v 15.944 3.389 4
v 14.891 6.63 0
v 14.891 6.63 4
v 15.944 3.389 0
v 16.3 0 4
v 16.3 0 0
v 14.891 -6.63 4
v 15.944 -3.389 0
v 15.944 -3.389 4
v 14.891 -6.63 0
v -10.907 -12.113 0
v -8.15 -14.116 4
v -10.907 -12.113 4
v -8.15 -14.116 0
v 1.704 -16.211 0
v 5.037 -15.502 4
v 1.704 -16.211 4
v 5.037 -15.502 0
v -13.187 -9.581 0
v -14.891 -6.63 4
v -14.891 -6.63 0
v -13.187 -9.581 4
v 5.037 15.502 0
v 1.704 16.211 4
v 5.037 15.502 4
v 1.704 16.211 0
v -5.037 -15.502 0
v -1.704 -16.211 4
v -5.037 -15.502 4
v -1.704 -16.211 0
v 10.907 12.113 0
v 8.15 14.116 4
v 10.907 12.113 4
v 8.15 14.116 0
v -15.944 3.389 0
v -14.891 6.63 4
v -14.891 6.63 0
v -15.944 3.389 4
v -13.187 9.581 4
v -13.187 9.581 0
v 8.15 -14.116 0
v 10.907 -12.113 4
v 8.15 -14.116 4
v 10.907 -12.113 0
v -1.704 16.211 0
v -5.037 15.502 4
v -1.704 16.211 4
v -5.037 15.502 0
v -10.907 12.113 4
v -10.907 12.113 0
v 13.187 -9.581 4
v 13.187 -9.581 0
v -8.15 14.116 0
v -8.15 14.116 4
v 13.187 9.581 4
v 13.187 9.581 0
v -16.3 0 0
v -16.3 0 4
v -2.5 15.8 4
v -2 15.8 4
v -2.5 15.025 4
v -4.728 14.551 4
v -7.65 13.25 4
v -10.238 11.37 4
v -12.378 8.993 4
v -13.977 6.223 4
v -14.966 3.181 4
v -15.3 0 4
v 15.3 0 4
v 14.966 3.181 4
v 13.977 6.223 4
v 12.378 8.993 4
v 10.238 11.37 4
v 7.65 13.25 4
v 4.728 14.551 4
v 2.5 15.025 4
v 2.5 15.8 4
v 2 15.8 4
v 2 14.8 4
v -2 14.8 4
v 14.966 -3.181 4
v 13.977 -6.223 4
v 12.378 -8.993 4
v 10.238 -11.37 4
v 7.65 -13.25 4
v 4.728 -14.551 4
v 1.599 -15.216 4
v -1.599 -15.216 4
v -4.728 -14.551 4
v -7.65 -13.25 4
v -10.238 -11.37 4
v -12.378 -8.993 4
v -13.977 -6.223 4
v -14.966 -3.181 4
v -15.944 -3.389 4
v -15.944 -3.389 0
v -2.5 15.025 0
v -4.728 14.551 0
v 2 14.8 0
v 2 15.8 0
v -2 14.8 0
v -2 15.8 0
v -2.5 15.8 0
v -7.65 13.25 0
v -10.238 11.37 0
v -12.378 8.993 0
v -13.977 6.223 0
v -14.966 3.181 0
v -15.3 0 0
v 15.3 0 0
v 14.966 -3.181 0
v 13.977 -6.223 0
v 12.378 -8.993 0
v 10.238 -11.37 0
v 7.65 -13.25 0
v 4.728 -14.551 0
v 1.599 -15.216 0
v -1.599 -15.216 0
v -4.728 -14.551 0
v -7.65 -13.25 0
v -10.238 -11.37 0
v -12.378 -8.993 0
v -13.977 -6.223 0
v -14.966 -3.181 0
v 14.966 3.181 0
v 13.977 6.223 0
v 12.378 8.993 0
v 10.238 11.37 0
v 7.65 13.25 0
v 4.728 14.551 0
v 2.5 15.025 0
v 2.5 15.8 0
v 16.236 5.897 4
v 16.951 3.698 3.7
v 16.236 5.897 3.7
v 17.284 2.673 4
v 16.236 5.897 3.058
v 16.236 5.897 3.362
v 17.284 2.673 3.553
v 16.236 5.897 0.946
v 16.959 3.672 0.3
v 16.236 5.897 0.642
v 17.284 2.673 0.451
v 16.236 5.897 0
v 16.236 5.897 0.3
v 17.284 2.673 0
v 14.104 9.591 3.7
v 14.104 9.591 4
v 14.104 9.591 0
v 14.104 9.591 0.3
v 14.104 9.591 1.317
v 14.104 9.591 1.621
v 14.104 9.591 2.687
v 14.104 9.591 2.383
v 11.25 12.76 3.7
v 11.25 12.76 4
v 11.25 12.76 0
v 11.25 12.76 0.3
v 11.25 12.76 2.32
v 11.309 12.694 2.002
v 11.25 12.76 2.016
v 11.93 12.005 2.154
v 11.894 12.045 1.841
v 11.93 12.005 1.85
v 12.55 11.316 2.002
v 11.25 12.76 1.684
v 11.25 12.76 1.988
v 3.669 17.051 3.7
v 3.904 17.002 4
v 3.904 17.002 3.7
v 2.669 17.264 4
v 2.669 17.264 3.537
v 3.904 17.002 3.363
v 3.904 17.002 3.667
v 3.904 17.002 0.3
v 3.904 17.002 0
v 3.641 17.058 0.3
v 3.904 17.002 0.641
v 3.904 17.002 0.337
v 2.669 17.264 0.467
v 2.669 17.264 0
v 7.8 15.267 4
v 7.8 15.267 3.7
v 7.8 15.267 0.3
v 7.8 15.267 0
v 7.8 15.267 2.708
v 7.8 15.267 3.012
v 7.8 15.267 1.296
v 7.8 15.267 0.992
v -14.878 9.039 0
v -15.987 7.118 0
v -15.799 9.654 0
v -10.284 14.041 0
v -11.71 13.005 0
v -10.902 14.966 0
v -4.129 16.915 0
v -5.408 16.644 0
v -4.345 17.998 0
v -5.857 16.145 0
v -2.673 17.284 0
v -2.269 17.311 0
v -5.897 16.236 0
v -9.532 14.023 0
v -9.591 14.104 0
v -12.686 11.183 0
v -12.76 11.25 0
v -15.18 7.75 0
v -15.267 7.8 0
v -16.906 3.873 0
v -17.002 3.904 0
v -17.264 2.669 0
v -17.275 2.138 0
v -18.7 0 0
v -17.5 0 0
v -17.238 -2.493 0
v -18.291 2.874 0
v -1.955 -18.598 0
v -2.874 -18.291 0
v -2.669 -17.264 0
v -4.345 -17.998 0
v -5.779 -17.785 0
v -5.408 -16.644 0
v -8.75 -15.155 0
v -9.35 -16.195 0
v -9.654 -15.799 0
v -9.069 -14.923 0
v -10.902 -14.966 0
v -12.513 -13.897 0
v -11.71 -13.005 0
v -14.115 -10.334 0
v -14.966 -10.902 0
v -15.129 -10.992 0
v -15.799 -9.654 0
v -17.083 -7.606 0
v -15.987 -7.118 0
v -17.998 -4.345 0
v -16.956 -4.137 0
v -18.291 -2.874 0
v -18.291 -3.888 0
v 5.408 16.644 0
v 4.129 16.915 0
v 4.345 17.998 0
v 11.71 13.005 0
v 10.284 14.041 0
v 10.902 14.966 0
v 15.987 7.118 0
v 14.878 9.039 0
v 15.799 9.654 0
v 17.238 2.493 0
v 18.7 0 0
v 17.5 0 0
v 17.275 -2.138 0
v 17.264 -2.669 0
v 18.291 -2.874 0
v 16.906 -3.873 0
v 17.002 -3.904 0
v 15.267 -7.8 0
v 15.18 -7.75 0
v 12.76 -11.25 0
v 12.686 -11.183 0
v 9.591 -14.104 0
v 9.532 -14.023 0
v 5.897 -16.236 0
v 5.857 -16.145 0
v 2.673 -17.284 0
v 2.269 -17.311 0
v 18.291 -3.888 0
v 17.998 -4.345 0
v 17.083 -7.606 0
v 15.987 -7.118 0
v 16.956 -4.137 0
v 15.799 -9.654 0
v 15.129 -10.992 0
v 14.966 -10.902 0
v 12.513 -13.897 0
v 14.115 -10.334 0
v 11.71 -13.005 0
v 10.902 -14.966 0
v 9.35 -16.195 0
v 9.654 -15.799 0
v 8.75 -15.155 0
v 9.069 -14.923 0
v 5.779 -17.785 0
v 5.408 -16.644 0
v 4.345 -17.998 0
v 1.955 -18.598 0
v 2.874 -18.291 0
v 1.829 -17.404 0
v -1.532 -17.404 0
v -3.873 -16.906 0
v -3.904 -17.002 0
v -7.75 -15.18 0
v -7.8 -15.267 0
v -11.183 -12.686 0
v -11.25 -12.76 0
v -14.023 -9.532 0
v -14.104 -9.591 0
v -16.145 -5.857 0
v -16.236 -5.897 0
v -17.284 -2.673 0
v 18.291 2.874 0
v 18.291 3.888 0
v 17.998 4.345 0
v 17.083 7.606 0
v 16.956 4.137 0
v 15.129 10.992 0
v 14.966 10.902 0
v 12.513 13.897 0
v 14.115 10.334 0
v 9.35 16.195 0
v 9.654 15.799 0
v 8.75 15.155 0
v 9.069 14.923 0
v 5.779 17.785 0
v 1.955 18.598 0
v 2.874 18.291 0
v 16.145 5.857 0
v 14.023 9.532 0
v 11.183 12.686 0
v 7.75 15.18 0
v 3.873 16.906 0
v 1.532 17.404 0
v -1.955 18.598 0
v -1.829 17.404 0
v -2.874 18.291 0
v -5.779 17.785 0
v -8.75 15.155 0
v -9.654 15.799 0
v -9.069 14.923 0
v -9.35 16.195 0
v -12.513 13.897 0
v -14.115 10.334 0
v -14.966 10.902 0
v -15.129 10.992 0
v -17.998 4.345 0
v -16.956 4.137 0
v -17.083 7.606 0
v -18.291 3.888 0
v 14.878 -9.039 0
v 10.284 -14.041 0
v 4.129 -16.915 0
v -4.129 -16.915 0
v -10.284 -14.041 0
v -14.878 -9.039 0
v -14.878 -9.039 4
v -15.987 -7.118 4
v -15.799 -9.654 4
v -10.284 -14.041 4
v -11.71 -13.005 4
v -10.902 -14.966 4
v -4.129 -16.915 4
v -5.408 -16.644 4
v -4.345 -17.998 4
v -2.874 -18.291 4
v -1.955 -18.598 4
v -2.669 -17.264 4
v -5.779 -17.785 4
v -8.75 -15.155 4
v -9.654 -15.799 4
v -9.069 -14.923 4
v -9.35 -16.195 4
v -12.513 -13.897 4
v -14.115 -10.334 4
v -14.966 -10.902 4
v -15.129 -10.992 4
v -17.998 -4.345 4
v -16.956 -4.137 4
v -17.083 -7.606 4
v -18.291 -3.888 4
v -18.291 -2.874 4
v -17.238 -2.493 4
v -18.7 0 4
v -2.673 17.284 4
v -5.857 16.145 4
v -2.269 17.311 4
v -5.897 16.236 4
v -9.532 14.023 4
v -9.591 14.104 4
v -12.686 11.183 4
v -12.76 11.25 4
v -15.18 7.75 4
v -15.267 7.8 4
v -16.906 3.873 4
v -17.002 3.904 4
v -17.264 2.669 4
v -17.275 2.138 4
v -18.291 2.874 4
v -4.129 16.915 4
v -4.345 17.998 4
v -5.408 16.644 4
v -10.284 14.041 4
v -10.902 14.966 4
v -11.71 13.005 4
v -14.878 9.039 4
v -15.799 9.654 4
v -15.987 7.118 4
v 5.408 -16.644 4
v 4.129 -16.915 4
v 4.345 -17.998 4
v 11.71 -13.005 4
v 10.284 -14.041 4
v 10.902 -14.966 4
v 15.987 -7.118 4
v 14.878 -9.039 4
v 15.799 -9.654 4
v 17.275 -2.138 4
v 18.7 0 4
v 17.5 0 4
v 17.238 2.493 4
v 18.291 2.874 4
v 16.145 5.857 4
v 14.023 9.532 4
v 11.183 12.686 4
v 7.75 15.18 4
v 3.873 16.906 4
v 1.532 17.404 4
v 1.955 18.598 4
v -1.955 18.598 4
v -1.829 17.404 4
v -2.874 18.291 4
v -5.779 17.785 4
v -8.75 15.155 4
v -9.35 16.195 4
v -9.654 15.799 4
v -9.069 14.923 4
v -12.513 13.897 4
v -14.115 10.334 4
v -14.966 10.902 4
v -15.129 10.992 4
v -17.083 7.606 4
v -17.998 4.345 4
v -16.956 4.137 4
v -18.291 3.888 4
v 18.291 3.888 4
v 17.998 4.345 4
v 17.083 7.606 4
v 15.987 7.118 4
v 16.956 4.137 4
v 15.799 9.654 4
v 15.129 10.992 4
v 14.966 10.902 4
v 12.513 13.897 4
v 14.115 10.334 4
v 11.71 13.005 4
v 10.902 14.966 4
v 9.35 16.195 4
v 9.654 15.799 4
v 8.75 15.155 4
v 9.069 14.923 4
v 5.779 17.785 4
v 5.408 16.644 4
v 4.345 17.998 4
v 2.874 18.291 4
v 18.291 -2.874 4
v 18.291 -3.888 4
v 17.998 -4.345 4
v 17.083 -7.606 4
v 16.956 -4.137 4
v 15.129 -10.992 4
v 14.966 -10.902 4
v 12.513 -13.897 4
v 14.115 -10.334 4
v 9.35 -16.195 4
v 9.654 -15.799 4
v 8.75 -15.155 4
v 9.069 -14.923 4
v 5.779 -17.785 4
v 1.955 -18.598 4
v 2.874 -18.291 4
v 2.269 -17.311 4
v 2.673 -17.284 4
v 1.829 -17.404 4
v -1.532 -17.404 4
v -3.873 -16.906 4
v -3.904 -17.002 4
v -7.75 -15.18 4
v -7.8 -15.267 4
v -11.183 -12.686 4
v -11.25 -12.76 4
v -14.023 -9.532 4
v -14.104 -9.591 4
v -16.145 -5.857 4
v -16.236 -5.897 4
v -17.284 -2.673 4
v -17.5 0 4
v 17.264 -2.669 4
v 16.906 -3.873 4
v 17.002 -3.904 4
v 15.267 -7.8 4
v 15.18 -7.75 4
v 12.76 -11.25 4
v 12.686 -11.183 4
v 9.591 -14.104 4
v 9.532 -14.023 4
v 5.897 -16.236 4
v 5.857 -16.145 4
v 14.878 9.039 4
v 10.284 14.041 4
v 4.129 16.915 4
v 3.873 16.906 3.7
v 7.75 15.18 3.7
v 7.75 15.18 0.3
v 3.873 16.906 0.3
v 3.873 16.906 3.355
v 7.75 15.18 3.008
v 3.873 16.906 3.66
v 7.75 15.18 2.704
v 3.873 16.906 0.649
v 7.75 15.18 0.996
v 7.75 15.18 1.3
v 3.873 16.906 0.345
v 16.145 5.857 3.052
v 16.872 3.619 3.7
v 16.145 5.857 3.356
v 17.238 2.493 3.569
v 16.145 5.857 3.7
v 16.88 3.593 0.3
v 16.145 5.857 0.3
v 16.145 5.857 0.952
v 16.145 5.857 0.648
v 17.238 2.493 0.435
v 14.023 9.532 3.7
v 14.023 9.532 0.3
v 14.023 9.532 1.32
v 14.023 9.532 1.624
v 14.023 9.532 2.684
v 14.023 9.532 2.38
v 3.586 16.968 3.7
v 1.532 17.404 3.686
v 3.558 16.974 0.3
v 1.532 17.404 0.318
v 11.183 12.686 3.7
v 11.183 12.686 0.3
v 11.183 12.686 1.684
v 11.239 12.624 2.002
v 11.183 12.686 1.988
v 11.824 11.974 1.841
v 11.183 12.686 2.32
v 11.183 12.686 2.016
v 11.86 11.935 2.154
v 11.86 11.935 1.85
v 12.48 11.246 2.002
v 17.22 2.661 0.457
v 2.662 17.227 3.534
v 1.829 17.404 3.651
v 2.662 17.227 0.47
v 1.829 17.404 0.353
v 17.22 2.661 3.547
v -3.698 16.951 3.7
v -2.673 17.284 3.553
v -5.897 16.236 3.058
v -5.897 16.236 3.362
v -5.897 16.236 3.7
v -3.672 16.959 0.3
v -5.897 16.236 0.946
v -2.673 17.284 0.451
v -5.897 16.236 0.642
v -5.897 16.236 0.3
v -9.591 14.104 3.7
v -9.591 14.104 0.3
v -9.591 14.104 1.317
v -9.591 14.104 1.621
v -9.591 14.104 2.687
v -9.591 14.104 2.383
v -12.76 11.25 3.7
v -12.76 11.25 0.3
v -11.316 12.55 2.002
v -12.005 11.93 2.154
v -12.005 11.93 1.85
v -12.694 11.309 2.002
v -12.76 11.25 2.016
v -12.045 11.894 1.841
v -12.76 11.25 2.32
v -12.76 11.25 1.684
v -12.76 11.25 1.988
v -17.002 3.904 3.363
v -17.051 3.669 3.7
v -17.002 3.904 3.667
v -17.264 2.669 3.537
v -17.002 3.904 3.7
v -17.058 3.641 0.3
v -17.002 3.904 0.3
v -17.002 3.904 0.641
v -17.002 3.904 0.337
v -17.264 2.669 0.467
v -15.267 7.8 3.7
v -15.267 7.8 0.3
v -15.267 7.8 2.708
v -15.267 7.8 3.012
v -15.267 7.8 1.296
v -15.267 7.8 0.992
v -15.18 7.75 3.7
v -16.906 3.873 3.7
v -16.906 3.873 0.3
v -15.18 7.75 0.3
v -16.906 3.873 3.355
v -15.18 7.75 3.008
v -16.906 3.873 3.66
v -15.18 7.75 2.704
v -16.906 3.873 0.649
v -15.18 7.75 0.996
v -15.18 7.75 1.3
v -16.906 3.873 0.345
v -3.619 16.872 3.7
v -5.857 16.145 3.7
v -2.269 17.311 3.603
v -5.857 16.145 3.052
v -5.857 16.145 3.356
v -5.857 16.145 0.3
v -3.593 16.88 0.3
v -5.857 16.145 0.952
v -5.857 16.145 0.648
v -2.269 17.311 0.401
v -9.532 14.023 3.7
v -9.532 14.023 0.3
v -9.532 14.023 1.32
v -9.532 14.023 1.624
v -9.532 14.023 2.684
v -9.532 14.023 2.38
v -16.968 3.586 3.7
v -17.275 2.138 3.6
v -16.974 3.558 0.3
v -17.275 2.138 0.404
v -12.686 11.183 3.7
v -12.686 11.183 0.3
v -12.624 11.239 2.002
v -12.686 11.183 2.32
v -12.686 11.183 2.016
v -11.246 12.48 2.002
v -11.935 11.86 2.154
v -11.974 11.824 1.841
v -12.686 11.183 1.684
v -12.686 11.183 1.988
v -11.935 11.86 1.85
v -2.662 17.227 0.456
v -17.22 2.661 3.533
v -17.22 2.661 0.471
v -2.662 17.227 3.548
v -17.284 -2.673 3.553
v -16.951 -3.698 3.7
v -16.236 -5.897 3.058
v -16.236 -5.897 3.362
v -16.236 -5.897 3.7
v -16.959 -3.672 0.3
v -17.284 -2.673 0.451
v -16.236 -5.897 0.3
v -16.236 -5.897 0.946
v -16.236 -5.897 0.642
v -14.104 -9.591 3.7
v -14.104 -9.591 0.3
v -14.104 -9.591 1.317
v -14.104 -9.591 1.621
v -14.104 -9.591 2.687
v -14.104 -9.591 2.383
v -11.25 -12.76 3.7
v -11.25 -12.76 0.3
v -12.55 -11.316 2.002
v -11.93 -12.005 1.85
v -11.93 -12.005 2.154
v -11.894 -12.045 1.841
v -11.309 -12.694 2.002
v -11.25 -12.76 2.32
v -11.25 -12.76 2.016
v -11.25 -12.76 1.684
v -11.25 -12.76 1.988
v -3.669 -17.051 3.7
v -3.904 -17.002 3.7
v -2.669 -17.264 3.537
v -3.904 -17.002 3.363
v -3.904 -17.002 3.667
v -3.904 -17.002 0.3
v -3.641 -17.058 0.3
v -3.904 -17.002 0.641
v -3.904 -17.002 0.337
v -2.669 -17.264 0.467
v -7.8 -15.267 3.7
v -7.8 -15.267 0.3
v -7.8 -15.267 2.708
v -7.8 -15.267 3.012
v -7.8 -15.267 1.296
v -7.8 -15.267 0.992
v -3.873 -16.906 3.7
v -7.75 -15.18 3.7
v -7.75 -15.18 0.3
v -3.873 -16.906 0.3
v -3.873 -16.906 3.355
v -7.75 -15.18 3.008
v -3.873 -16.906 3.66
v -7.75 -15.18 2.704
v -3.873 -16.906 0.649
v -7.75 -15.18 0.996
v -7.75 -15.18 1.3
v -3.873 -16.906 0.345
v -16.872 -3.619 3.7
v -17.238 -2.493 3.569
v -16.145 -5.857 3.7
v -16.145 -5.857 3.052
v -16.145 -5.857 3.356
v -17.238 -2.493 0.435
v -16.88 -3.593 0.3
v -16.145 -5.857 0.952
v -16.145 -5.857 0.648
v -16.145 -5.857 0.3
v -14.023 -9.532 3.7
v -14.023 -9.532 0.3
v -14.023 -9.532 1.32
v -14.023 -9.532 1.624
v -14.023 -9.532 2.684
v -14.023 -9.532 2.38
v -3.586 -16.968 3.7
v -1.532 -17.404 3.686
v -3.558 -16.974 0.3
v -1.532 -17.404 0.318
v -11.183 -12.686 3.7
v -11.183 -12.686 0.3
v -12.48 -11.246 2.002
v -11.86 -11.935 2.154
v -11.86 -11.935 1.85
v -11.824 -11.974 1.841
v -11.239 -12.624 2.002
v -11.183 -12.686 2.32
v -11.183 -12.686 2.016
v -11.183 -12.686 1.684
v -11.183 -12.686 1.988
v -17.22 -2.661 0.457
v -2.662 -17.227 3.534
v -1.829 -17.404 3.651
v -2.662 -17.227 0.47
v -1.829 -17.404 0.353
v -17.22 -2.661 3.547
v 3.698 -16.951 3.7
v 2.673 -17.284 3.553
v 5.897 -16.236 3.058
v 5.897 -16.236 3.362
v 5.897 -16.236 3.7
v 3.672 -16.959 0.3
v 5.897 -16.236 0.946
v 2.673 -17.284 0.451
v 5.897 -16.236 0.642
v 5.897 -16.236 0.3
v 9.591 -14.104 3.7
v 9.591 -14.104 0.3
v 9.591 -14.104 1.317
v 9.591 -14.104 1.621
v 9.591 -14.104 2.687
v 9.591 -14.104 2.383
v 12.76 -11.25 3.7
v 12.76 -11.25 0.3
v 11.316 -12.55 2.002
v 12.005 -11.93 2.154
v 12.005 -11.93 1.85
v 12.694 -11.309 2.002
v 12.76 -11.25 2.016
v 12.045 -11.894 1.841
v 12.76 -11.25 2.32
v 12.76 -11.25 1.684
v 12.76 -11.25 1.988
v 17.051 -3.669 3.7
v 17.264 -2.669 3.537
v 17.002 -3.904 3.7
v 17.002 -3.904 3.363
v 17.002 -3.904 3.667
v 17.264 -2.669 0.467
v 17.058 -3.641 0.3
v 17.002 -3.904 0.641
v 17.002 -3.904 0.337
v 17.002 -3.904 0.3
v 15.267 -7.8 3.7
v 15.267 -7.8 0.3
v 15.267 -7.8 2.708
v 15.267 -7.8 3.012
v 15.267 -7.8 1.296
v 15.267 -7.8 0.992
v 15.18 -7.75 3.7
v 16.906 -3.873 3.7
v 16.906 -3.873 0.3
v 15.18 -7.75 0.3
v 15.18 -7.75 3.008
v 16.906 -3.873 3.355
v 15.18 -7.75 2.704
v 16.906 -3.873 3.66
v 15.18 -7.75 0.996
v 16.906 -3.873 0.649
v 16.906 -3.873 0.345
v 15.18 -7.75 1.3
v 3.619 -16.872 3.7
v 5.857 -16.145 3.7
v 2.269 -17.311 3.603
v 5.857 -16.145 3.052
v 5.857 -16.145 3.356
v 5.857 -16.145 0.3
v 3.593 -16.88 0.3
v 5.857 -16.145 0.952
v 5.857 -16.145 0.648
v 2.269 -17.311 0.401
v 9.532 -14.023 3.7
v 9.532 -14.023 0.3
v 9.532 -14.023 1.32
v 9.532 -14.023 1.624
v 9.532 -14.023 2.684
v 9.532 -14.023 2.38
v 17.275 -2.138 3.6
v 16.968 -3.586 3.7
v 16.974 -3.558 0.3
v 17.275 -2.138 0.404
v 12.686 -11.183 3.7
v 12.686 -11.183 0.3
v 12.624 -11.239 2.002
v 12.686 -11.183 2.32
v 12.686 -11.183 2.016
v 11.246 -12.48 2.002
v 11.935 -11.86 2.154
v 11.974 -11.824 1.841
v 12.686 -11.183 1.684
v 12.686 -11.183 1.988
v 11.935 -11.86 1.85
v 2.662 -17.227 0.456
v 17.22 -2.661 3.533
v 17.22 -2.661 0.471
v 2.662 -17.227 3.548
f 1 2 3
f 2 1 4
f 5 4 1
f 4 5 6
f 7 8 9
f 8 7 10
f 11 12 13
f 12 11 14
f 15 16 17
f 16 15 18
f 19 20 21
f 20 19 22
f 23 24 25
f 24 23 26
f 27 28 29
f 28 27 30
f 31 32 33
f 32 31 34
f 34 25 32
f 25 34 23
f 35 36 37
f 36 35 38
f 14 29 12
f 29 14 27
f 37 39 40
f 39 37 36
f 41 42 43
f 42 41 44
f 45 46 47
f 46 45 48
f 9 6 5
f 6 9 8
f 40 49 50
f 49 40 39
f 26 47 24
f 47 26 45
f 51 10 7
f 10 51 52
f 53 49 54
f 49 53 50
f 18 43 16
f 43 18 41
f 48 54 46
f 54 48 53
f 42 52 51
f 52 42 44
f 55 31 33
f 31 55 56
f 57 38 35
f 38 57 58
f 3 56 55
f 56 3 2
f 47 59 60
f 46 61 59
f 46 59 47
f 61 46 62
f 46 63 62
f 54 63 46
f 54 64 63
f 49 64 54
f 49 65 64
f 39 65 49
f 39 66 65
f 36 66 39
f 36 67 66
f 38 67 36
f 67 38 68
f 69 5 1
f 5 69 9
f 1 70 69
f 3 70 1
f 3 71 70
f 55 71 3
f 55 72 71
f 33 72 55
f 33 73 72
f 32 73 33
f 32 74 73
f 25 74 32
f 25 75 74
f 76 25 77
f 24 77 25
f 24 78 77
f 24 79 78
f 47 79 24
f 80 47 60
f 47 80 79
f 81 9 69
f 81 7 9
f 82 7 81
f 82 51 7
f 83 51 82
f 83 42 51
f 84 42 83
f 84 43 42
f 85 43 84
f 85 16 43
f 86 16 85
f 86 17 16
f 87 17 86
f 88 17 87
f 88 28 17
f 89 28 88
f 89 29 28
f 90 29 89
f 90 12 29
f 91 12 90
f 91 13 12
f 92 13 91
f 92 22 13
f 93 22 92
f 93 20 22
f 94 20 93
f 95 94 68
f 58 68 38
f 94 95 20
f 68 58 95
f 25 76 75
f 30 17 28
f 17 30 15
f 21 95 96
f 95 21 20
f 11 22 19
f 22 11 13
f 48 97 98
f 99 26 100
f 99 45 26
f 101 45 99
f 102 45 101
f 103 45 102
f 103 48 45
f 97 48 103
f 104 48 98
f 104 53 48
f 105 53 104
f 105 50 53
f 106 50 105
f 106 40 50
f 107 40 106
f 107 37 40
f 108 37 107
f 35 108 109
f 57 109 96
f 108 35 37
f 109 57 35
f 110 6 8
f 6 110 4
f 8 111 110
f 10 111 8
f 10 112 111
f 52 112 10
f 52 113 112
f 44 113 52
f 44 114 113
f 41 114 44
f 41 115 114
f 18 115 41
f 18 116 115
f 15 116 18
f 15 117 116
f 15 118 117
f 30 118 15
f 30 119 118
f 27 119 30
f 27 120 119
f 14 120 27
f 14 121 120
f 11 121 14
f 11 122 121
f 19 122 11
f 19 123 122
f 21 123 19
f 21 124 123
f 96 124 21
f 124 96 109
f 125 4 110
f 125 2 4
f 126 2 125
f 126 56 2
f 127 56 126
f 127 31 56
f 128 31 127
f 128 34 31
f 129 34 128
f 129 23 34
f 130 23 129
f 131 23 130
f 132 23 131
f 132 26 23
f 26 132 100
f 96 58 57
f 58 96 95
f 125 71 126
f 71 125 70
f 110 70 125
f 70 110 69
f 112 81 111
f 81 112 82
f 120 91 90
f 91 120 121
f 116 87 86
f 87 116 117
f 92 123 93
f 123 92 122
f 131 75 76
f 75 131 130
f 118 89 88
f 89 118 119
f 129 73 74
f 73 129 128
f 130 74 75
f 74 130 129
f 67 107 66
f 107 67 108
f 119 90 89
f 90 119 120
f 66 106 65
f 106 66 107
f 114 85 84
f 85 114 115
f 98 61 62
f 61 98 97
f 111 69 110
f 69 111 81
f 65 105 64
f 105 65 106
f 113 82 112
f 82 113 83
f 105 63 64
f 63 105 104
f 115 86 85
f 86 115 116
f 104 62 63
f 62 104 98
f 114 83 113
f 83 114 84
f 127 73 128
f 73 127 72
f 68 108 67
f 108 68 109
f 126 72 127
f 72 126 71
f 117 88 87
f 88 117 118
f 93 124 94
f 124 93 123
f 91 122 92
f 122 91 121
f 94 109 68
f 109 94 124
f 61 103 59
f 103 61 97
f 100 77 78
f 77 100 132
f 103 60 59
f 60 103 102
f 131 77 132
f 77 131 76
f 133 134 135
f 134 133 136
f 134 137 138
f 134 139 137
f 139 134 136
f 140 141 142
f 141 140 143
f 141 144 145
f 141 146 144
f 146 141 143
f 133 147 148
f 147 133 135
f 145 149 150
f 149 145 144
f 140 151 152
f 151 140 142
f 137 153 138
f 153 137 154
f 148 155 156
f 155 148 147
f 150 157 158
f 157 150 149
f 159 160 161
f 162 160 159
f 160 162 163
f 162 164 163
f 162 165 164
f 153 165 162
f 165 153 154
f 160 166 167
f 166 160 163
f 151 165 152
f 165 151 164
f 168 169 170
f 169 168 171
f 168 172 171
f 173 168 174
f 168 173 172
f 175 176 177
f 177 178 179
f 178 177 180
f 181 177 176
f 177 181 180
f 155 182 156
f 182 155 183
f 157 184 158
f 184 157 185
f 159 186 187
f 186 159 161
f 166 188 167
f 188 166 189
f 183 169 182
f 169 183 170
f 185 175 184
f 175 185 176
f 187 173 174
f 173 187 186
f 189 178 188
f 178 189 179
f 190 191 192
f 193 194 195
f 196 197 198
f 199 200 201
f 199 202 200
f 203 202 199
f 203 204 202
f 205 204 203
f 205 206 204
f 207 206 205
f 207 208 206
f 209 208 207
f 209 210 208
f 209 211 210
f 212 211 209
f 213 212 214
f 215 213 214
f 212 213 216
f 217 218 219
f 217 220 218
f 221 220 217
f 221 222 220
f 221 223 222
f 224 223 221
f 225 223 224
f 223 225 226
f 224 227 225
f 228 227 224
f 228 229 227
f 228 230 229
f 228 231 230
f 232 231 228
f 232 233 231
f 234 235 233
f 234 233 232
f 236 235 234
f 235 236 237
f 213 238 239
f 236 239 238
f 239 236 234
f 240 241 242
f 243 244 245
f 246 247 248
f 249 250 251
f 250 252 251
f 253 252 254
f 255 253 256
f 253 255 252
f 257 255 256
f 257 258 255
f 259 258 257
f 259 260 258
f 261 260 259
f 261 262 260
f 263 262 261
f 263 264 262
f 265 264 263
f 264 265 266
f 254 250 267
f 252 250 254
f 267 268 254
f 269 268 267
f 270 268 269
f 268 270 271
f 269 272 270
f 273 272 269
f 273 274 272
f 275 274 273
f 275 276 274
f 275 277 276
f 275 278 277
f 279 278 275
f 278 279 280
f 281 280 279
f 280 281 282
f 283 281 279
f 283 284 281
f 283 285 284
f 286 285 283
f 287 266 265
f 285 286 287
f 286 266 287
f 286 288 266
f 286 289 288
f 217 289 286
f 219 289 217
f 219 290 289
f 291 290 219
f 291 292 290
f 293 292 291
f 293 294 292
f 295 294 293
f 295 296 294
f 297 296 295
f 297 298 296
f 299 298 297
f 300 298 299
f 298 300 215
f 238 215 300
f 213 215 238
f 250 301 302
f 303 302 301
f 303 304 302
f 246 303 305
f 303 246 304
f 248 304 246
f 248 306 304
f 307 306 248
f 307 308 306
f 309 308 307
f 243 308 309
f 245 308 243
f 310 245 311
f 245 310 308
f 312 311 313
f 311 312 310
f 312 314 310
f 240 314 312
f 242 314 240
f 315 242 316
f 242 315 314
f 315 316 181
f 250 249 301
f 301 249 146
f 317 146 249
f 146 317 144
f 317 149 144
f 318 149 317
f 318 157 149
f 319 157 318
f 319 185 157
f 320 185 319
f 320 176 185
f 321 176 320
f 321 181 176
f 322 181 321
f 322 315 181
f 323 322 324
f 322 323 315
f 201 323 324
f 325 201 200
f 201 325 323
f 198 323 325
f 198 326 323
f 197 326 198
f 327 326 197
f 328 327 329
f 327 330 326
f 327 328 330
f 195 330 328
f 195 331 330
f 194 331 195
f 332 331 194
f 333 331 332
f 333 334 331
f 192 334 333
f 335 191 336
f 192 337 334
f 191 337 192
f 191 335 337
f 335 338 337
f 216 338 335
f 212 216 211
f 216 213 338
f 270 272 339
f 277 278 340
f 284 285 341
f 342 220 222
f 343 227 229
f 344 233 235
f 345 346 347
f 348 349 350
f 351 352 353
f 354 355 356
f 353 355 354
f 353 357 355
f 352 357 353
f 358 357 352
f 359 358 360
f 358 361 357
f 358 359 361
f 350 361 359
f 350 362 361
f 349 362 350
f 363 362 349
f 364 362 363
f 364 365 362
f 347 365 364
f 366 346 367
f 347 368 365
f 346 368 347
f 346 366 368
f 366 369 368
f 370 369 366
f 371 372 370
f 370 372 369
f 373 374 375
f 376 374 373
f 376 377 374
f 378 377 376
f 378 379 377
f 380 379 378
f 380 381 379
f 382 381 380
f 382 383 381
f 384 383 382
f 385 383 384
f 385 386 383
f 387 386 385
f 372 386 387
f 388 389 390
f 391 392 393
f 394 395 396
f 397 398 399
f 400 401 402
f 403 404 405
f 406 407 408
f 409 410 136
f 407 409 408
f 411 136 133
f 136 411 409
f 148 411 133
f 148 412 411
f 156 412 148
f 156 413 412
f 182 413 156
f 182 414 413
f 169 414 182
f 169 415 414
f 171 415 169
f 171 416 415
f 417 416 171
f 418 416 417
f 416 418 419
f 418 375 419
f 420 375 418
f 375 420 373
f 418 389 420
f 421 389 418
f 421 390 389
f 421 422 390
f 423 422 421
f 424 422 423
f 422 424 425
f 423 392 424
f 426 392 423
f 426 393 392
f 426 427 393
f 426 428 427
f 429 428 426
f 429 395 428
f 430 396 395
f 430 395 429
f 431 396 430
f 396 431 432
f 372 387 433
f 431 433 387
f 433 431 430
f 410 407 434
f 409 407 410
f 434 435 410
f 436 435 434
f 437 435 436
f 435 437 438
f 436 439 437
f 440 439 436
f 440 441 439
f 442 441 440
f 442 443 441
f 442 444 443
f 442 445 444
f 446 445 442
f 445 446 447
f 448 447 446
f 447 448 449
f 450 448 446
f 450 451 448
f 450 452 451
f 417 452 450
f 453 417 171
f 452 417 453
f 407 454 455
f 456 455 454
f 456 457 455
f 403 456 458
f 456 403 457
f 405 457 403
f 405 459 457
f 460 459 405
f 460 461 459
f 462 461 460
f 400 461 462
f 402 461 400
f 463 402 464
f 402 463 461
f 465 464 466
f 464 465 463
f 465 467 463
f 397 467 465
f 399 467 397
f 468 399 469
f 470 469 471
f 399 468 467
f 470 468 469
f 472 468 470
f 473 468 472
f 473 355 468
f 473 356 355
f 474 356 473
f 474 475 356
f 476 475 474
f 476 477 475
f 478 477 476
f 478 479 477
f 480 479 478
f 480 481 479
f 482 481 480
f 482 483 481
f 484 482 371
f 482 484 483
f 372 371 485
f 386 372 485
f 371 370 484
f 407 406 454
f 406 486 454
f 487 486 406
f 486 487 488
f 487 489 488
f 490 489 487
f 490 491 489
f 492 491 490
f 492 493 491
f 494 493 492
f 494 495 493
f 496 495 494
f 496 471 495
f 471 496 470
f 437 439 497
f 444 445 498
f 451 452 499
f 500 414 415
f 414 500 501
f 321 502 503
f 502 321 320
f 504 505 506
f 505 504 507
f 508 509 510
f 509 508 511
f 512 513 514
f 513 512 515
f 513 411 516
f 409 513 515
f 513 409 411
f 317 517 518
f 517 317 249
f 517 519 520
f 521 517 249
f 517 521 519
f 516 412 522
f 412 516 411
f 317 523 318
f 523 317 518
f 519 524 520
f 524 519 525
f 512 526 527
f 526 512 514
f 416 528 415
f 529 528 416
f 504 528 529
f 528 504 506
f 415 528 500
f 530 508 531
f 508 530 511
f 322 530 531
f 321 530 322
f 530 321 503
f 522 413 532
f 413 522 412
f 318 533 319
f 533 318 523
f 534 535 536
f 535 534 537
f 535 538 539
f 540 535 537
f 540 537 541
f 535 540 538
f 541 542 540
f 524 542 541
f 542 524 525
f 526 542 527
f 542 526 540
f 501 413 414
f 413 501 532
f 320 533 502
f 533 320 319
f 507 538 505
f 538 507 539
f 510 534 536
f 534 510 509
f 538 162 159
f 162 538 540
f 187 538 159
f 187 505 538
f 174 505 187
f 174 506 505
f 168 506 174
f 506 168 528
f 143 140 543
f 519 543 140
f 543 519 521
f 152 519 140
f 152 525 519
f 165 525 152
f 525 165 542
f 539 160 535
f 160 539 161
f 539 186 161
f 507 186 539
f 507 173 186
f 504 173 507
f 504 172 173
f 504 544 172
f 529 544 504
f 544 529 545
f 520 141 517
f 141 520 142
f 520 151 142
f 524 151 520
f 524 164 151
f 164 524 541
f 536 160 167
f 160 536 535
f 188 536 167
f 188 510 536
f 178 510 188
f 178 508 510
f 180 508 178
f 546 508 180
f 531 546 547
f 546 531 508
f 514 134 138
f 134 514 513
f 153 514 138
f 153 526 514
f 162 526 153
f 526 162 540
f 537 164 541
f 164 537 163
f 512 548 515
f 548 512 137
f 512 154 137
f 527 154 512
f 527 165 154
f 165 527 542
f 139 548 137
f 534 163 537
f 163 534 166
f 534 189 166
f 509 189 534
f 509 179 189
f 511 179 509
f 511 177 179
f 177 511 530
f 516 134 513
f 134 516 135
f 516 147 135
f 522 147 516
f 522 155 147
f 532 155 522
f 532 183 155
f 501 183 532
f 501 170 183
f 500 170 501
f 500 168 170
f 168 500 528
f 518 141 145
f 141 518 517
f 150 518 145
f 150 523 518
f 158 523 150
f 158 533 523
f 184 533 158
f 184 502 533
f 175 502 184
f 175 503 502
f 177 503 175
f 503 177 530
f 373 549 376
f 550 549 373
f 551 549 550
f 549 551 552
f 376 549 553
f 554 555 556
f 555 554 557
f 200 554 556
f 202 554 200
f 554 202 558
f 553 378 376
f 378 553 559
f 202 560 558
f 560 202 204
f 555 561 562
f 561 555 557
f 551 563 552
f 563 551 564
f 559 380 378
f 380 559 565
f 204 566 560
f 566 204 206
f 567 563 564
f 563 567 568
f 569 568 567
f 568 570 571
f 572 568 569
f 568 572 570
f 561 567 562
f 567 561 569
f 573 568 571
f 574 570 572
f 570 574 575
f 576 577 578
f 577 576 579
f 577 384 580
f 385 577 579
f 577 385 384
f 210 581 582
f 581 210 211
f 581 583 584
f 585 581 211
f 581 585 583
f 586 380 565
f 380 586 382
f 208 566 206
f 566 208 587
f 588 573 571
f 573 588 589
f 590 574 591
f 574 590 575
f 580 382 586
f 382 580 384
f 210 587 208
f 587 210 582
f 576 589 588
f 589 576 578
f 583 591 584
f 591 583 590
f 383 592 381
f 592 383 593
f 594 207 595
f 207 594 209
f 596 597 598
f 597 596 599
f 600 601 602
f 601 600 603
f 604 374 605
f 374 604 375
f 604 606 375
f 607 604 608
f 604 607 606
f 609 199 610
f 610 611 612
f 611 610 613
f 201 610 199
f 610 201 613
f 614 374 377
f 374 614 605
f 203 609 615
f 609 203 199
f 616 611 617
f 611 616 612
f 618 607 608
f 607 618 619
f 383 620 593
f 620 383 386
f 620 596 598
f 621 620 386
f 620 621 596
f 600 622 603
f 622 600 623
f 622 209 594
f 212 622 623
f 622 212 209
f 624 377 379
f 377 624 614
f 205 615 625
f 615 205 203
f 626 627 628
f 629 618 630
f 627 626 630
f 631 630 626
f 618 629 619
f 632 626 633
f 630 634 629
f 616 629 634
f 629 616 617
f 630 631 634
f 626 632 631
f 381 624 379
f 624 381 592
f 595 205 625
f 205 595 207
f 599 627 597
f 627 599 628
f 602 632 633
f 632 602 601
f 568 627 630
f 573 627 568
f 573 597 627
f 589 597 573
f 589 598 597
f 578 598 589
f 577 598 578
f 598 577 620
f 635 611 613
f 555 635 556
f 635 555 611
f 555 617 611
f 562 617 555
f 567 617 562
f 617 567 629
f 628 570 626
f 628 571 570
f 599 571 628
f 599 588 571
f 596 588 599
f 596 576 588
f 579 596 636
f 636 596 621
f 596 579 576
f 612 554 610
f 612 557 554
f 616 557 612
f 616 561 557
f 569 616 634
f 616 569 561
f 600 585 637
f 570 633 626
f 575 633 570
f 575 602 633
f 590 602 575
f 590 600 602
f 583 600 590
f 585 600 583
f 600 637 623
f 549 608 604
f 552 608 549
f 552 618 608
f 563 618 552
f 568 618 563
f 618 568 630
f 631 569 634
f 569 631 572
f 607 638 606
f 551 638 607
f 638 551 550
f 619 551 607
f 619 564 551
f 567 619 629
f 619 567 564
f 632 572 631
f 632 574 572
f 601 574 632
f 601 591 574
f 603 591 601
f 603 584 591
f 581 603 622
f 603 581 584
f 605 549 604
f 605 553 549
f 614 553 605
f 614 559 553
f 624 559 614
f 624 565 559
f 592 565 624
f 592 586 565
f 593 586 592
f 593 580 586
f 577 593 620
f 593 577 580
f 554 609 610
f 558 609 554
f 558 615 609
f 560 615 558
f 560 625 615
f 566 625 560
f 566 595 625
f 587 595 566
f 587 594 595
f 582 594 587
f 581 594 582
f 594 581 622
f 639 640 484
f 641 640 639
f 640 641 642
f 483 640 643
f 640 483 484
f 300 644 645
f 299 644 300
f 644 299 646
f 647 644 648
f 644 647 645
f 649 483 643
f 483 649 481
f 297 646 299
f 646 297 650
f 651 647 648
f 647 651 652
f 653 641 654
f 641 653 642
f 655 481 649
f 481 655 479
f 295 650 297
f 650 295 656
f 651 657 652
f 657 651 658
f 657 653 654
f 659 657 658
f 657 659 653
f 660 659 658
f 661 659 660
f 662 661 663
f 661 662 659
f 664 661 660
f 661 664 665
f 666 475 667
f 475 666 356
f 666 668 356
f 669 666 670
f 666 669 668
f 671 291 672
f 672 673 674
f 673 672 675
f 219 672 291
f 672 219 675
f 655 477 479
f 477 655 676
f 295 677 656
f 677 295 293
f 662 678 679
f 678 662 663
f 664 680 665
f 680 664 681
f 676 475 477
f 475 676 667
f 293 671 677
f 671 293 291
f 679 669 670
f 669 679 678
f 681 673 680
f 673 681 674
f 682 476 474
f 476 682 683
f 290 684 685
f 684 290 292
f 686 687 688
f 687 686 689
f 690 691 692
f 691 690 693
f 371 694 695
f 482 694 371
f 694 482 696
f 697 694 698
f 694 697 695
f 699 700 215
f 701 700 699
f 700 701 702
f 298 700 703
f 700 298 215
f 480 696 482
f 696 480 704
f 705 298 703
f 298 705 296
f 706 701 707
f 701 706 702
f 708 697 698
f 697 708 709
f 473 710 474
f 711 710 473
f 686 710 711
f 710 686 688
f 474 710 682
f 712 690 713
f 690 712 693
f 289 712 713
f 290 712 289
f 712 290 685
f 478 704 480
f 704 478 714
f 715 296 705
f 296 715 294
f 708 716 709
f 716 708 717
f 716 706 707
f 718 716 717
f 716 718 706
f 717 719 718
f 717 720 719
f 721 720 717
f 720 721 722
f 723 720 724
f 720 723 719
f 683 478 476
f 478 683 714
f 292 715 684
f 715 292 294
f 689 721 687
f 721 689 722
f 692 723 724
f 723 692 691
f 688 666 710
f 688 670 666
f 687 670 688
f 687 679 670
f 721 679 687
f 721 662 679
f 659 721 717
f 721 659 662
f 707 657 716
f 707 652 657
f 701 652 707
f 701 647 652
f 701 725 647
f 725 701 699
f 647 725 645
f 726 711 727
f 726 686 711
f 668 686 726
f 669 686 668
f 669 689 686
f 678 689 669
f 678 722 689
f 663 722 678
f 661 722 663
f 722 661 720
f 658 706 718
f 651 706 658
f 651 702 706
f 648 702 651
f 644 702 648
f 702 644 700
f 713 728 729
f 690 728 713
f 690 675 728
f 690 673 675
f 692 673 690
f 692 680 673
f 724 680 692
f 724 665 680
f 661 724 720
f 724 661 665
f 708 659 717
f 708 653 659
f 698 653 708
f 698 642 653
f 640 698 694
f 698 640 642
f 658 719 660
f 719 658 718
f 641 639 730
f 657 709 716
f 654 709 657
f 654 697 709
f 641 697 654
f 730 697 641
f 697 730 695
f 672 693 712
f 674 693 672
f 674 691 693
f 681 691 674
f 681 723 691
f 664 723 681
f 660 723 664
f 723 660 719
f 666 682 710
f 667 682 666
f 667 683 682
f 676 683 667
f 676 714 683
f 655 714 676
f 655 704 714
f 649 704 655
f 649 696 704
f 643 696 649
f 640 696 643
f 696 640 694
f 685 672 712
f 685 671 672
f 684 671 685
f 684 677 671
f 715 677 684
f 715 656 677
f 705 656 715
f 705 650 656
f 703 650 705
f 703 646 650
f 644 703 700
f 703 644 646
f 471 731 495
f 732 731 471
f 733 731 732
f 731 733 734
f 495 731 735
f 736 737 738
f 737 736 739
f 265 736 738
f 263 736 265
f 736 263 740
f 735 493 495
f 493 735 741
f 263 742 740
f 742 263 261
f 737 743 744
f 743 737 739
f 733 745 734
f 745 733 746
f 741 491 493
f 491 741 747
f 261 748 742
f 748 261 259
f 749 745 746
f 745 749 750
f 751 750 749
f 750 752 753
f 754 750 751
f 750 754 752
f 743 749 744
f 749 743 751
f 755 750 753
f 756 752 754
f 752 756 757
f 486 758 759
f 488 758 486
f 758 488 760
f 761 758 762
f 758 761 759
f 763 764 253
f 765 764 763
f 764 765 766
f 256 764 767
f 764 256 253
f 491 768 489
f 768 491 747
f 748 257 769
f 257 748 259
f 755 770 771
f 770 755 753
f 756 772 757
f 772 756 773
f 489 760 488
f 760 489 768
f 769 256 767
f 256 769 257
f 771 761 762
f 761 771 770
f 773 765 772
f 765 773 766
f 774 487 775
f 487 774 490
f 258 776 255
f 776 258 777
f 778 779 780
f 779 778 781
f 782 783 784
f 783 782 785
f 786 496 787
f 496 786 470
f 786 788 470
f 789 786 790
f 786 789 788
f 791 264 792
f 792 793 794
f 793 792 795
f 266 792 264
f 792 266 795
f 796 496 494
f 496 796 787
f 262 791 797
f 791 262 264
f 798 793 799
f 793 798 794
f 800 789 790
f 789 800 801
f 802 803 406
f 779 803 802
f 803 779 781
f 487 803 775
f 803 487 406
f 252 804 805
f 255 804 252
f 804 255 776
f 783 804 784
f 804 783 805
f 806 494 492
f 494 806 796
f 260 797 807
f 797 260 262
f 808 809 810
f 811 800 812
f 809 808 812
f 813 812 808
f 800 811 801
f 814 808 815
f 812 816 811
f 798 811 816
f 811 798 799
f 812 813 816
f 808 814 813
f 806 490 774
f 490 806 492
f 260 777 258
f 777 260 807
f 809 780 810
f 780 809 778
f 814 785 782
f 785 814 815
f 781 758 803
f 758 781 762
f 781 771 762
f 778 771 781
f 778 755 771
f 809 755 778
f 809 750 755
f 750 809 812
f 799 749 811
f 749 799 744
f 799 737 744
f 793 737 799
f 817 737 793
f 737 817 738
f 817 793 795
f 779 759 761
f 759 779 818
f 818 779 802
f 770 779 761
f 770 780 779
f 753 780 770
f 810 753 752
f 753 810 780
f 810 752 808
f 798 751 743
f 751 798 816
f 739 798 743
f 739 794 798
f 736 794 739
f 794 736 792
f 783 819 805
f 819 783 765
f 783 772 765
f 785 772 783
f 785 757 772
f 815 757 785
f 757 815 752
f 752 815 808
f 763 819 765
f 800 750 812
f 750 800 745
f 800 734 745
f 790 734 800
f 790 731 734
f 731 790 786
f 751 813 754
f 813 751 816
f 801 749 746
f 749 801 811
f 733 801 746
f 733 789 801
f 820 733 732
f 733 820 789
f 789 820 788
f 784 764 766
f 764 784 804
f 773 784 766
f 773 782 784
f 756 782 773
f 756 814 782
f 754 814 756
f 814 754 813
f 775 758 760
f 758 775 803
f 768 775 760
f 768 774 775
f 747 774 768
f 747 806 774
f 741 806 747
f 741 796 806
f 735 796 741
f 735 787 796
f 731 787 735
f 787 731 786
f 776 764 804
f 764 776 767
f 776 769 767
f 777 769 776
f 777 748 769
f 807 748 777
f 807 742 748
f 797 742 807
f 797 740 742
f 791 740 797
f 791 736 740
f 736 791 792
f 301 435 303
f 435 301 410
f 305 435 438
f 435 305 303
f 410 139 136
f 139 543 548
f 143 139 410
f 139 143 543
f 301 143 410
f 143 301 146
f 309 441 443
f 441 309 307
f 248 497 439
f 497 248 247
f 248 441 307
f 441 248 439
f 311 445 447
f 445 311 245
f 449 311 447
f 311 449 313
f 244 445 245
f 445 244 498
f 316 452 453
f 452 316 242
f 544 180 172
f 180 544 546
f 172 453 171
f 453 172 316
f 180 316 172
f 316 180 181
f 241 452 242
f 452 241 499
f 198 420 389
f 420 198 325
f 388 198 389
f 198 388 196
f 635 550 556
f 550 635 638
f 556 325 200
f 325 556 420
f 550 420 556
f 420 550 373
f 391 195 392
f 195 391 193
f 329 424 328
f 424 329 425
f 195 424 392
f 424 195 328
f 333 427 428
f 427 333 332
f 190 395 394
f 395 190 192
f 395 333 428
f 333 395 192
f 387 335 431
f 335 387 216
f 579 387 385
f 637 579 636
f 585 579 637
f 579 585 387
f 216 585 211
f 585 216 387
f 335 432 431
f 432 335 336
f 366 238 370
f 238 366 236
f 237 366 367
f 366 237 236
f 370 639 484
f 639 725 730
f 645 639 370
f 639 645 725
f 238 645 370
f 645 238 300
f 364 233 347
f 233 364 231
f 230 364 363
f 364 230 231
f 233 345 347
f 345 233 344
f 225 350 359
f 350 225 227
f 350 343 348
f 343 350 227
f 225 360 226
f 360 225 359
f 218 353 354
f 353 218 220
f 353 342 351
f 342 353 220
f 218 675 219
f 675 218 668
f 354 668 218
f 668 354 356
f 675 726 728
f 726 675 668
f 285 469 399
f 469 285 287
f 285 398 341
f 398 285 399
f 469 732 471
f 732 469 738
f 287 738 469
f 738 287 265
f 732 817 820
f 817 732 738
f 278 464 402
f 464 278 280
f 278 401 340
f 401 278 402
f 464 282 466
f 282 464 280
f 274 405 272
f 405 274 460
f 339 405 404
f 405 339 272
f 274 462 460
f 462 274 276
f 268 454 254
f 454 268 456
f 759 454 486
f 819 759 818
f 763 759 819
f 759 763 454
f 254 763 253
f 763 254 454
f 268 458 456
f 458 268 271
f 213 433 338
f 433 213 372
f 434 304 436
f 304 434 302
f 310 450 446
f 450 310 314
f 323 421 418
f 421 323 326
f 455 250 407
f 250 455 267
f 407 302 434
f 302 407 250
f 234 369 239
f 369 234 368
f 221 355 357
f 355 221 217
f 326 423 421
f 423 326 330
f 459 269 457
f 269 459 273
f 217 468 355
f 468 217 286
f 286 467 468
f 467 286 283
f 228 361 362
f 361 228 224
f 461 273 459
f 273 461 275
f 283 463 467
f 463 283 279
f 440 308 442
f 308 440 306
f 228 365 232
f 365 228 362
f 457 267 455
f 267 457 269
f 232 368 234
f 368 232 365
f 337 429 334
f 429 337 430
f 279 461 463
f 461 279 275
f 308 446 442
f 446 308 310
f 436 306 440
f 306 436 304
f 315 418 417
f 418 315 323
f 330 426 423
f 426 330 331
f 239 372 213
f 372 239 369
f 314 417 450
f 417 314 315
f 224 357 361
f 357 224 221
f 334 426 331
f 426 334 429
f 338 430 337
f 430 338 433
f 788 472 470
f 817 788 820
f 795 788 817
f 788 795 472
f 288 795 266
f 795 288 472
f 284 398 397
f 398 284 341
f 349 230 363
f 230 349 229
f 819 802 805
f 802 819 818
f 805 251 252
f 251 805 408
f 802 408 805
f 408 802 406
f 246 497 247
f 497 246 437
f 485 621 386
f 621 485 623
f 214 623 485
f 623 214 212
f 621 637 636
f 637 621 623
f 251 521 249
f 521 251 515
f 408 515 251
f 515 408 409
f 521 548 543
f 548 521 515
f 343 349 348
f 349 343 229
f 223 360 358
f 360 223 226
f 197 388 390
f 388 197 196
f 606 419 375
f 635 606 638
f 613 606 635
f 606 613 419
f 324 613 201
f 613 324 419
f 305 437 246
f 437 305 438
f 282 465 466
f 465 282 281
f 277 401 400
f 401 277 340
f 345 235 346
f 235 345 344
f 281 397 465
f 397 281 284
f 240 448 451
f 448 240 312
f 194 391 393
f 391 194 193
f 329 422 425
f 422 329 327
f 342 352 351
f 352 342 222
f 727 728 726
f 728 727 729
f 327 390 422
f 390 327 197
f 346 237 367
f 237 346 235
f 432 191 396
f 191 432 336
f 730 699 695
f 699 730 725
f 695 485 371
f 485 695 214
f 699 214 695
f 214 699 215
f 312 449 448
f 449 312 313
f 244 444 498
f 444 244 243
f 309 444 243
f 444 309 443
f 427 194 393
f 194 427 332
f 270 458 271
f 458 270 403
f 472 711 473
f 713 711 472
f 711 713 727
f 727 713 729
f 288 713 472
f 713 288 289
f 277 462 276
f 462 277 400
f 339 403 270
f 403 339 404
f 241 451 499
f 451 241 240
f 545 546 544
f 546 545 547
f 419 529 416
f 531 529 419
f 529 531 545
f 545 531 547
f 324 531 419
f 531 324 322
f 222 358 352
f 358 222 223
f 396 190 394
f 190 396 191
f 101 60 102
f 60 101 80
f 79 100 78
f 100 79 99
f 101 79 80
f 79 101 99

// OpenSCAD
$fn = 30;

union() {
	color(alpha = 1.0, c = [1, 0.1, 0.5]) {
		difference() {
			cylinder(h = 4, r1 = 16.3, r2 = 16.3);
			translate(v = [0, 0, -1]) {
				cylinder(h = 6, r1 = 15.3, r2 = 15.3);
			}
			translate(v = [-2.5, 15.8, 0]) {
				rotate(a = [90, 0, 0]) {
					cube(size = [5.0, 5.0, 1]);
				}
			}
		}
	}
	color(alpha = 1.0, c = [0, 0, 1]) {
		union() {
			rotate(a = [0, 0, 0]) {
				union() {
					translate(v = [0.6, 0.6, 0]) {
						union() {
							intersection() {
								translate(v = [0, 0, 1.85]) {
									rotate(a = [6.6, 0, 0]) {
										rotate(a = [0, 6.6, 0]) {
											cube(size = [110, 110, 0.3]);
										}
									}
								}
								translate(v = [-3.0, -3.0, 0]) {
									difference() {
										cylinder(h = 4, r1 = 20.400000000000002, r2 = 20.400000000000002);
										translate(v = [0, 0, -1]) {
											cylinder(h = 6, r1 = 20.3, r2 = 20.3);
										}
									}
								}
								cube(size = [20.3, 20.3, 4]);
							}
							intersection() {
								translate(v = [0, 0, 1.85]) {
									rotate(a = [-6.6, 0, 0]) {
										rotate(a = [0, -6.6, 0]) {
											cube(size = [110, 110, 0.3]);
										}
									}
								}
								translate(v = [-3.0, -3.0, 0]) {
									difference() {
										cylinder(h = 4, r1 = 20.400000000000002, r2 = 20.400000000000002);
										translate(v = [0, 0, -1]) {
											cylinder(h = 6, r1 = 20.3, r2 = 20.3);
										}
									}
								}
								cube(size = [20.3, 20.3, 4]);
							}
							intersection() {
								translate(v = [0, 0, 3.7]) {
									cube(size = [110, 110, 0.3]);
								}
								translate(v = [-3.0, -3.0, 0]) {
									difference() {
										cylinder(h = 4, r1 = 20.400000000000002, r2 = 20.400000000000002);
										translate(v = [0, 0, -1]) {
											cylinder(h = 6, r1 = 20.3, r2 = 20.3);
										}
									}
								}
								cube(size = [20.3, 20.3, 4]);
							}
							intersection() {
								translate(v = [0, 0, 0]) {
									cube(size = [110, 110, 0.3]);
								}
								translate(v = [-3.0, -3.0, 0]) {
									difference() {
										cylinder(h = 4, r1 = 20.400000000000002, r2 = 20.400000000000002);
										translate(v = [0, 0, -1]) {
											cylinder(h = 6, r1 = 20.3, r2 = 20.3);
										}
									}
								}
								cube(size = [20.3, 20.3, 4]);
							}
						}
					}
					translate(v = [0, 0, 0]) {
						translate(v = [17.5, 0, 0]) {
							cube(size = [0.3, 0.6, 4]);
						}
					}
					translate(v = [0, -0.6, 0]) {
						translate(v = [17.5, 0, 0]) {
							cube(size = [0.3, 0.6, 4]);
						}
					}
				}
			}
			rotate(a = [0, 0, 90]) {
				union() {
					translate(v = [0.6, 0.6, 0]) {
						union() {
							intersection() {
								translate(v = [0, 0, 1.85]) {
									rotate(a = [6.6, 0, 0]) {
										rotate(a = [0, 6.6, 0]) {
											cube(size = [110, 110, 0.3]);
										}
									}
								}
								translate(v = [-3.0, -3.0, 0]) {
									difference() {
										cylinder(h = 4, r1 = 20.400000000000002, r2 = 20.400000000000002);
										translate(v = [0, 0, -1]) {
											cylinder(h = 6, r1 = 20.3, r2 = 20.3);
										}
									}
								}
								cube(size = [20.3, 20.3, 4]);
							}
							intersection() {
								translate(v = [0, 0, 1.85]) {
									rotate(a = [-6.6, 0, 0]) {
										rotate(a = [0, -6.6, 0]) {
											cube(size = [110, 110, 0.3]);
										}
									}
								}
								translate(v = [-3.0, -3.0, 0]) {
									difference() {
										cylinder(h = 4, r1 = 20.400000000000002, r2 = 20.400000000000002);
										translate(v = [0, 0, -1]) {
											cylinder(h = 6, r1 = 20.3, r2 = 20.3);
										}
									}
								}
								cube(size = [20.3, 20.3, 4]);
							}
							intersection() {
								translate(v = [0, 0, 3.7]) {
									cube(size = [110, 110, 0.3]);
								}
								translate(v = [-3.0, -3.0, 0]) {
									difference() {
										cylinder(h = 4, r1 = 20.400000000000002, r2 = 20.400000000000002);
										translate(v = [0, 0, -1]) {
											cylinder(h = 6, r1 = 20.3, r2 = 20.3);
										}
									}
								}
								cube(size = [20.3, 20.3, 4]);
							}
							intersection() {
								translate(v = [0, 0, 0]) {
									cube(size = [110, 110, 0.3]);
								}
								translate(v = [-3.0, -3.0, 0]) {
									difference() {
										cylinder(h = 4, r1 = 20.400000000000002, r2 = 20.400000000000002);
										translate(v = [0, 0, -1]) {
											cylinder(h = 6, r1 = 20.3, r2 = 20.3);
										}
									}
								}
								cube(size = [20.3, 20.3, 4]);
							}
						}
					}
					translate(v = [0, 0, 0]) {
						translate(v = [17.5, 0, 0]) {
							cube(size = [0.3, 0.6, 4]);
						}
					}
					translate(v = [0, -0.6, 0]) {
						translate(v = [17.5, 0, 0]) {
							cube(size = [0.3, 0.6, 4]);
						}
					}
				}
			}
			rotate(a = [0, 0, 180]) {
				union() {
					translate(v = [0.6, 0.6, 0]) {
						union() {
							intersection() {
								translate(v = [0, 0, 1.85]) {
									rotate(a = [6.6, 0, 0]) {
										rotate(a = [0, 6.6, 0]) {
											cube(size = [110, 110, 0.3]);
										}
									}
								}
								translate(v = [-3.0, -3.0, 0]) {
									difference() {
										cylinder(h = 4, r1 = 20.400000000000002, r2 = 20.400000000000002);
										translate(v = [0, 0, -1]) {
											cylinder(h = 6, r1 = 20.3, r2 = 20.3);
										}
									}
								}
								cube(size = [20.3, 20.3, 4]);
							}
							intersection() {
								translate(v = [0, 0, 1.85]) {
									rotate(a = [-6.6, 0, 0]) {
										rotate(a = [0, -6.6, 0]) {
											cube(size = [110, 110, 0.3]);
										}
									}
								}
								translate(v = [-3.0, -3.0, 0]) {
									difference() {
										cylinder(h = 4, r1 = 20.400000000000002, r2 = 20.400000000000002);
										translate(v = [0, 0, -1]) {
											cylinder(h = 6, r1 = 20.3, r2 = 20.3);
										}
									}
								}
								cube(size = [20.3, 20.3, 4]);
							}
							intersection() {
								translate(v = [0, 0, 3.7]) {
									cube(size = [110, 110, 0.3]);
								}
								translate(v = [-3.0, -3.0, 0]) {
									difference() {
										cylinder(h = 4, r1 = 20.400000000000002, r2 = 20.400000000000002);
										translate(v = [0, 0, -1]) {
											cylinder(h = 6, r1 = 20.3, r2 = 20.3);
										}
									}
								}
								cube(size = [20.3, 20.3, 4]);
							}
							intersection() {
								translate(v = [0, 0, 0]) {
									cube(size = [110, 110, 0.3]);
								}
								translate(v = [-3.0, -3.0, 0]) {
									difference() {
										cylinder(h = 4, r1 = 20.400000000000002, r2 = 20.400000000000002);
										translate(v = [0, 0, -1]) {
											cylinder(h = 6, r1 = 20.3, r2 = 20.3);
										}
									}
								}
								cube(size = [20.3, 20.3, 4]);
							}
						}
					}
					translate(v = [0, 0, 0]) {
						translate(v = [17.5, 0, 0]) {
							cube(size = [0.3, 0.6, 4]);
						}
					}
					translate(v = [0, -0.6, 0]) {
						translate(v = [17.5, 0, 0]) {
							cube(size = [0.3, 0.6, 4]);
						}
					}
				}
			}
			rotate(a = [0, 0, 270]) {
				union() {
					translate(v = [0.6, 0.6, 0]) {
						union() {
							intersection() {
								translate(v = [0, 0, 1.85]) {
									rotate(a = [6.6, 0, 0]) {
										rotate(a = [0, 6.6, 0]) {
											cube(size = [110, 110, 0.3]);
										}
									}
								}
								translate(v = [-3.0, -3.0, 0]) {
									difference() {
										cylinder(h = 4, r1 = 20.400000000000002, r2 = 20.400000000000002);
										translate(v = [0, 0, -1]) {
											cylinder(h = 6, r1 = 20.3, r2 = 20.3);
										}
									}
								}
								cube(size = [20.3, 20.3, 4]);
							}
							intersection() {
								translate(v = [0, 0, 1.85]) {
									rotate(a = [-6.6, 0, 0]) {
										rotate(a = [0, -6.6, 0]) {
											cube(size = [110, 110, 0.3]);
										}
									}
								}
								translate(v = [-3.0, -3.0, 0]) {
									difference() {
										cylinder(h = 4, r1 = 20.400000000000002, r2 = 20.400000000000002);
										translate(v = [0, 0, -1]) {
											cylinder(h = 6, r1 = 20.3, r2 = 20.3);
										}
									}
								}
								cube(size = [20.3, 20.3, 4]);
							}
							intersection() {
								translate(v = [0, 0, 3.7]) {
									cube(size = [110, 110, 0.3]);
								}
								translate(v = [-3.0, -3.0, 0]) {
									difference() {
										cylinder(h = 4, r1 = 20.400000000000002, r2 = 20.400000000000002);
										translate(v = [0, 0, -1]) {
											cylinder(h = 6, r1 = 20.3, r2 = 20.3);
										}
									}
								}
								cube(size = [20.3, 20.3, 4]);
							}
							intersection() {
								translate(v = [0, 0, 0]) {
									cube(size = [110, 110, 0.3]);
								}
								translate(v = [-3.0, -3.0, 0]) {
									difference() {
										cylinder(h = 4, r1 = 20.400000000000002, r2 = 20.400000000000002);
										translate(v = [0, 0, -1]) {
											cylinder(h = 6, r1 = 20.3, r2 = 20.3);
										}
									}
								}
								cube(size = [20.3, 20.3, 4]);
							}
						}
					}
					translate(v = [0, 0, 0]) {
						translate(v = [17.5, 0, 0]) {
							cube(size = [0.3, 0.6, 4]);
						}
					}
					translate(v = [0, -0.6, 0]) {
						translate(v = [17.5, 0, 0]) {
							cube(size = [0.3, 0.6, 4]);
						}
					}
				}
			}
		}
	}
	color(alpha = 1.0, c = [0, 0.9, 0]) {
		difference() {
			cylinder(h = 4, r1 = 18.7, r2 = 18.7);
			translate(v = [0, 0, -1]) {
				cylinder(h = 6, r1 = 17.5, r2 = 17.5);
			}
			union() {
				rotate(a = [0, 0, 11.25]) {
					translate(v = [-0.5, 0, 0]) {
						translate(v = [17.5, -0.75, -1]) {
							cube(size = [1.5, 1.5, 6]);
						}
					}
				}
				rotate(a = [0, 0, 33.75]) {
					translate(v = [-0.5, 0, 0]) {
						translate(v = [17.5, -0.75, -1]) {
							cube(size = [1.5, 1.5, 6]);
						}
					}
				}
				rotate(a = [0, 0, 56.25]) {
					translate(v = [-0.5, 0, 0]) {
						translate(v = [17.5, -0.75, -1]) {
							cube(size = [1.5, 1.5, 6]);
						}
					}
				}
				rotate(a = [0, 0, 78.75]) {
					translate(v = [-0.5, 0, 0]) {
						translate(v = [17.5, -0.75, -1]) {
							cube(size = [1.5, 1.5, 6]);
						}
					}
				}
				rotate(a = [0, 0, 101.25]) {
					translate(v = [-0.5, 0, 0]) {
						translate(v = [17.5, -0.75, -1]) {
							cube(size = [1.5, 1.5, 6]);
						}
					}
				}
				rotate(a = [0, 0, 123.75]) {
					translate(v = [-0.5, 0, 0]) {
						translate(v = [17.5, -0.75, -1]) {
							cube(size = [1.5, 1.5, 6]);
						}
					}
				}
				rotate(a = [0, 0, 146.25]) {
					translate(v = [-0.5, 0, 0]) {
						translate(v = [17.5, -0.75, -1]) {
							cube(size = [1.5, 1.5, 6]);
						}
					}
				}
				rotate(a = [0, 0, 168.75]) {
					translate(v = [-0.5, 0, 0]) {
						translate(v = [17.5, -0.75, -1]) {
							cube(size = [1.5, 1.5, 6]);
						}
					}
				}
				rotate(a = [0, 0, 191.25]) {
					translate(v = [-0.5, 0, 0]) {
						translate(v = [17.5, -0.75, -1]) {
							cube(size = [1.5, 1.5, 6]);
						}
					}
				}
				rotate(a = [0, 0, 213.75]) {
					translate(v = [-0.5, 0, 0]) {
						translate(v = [17.5, -0.75, -1]) {
							cube(size = [1.5, 1.5, 6]);
						}
					}
				}
				rotate(a = [0, 0, 236.25]) {
					translate(v = [-0.5, 0, 0]) {
						translate(v = [17.5, -0.75, -1]) {
							cube(size = [1.5, 1.5, 6]);
						}
					}
				}
				rotate(a = [0, 0, 258.75]) {
					translate(v = [-0.5, 0, 0]) {
						translate(v = [17.5, -0.75, -1]) {
							cube(size = [1.5, 1.5, 6]);
						}
					}
				}
				rotate(a = [0, 0, 281.25]) {
					translate(v = [-0.5, 0, 0]) {
						translate(v = [17.5, -0.75, -1]) {
							cube(size = [1.5, 1.5, 6]);
						}
					}
				}
				rotate(a = [0, 0, 303.75]) {
					translate(v = [-0.5, 0, 0]) {
						translate(v = [17.5, -0.75, -1]) {
							cube(size = [1.5, 1.5, 6]);
						}
					}
				}
				rotate(a = [0, 0, 326.25]) {
					translate(v = [-0.5, 0, 0]) {
						translate(v = [17.5, -0.75, -1]) {
							cube(size = [1.5, 1.5, 6]);
						}
					}
				}
				rotate(a = [0, 0, 348.75]) {
					translate(v = [-0.5, 0, 0]) {
						translate(v = [17.5, -0.75, -1]) {
							cube(size = [1.5, 1.5, 6]);
						}
					}
				}
			}
		}
	}
	translate(v = [-2.0, 15.8, 0]) {
		rotate(a = [90, 0, 0]) {
			cube(size = [4, 4, 1]);
		}
	}
}
